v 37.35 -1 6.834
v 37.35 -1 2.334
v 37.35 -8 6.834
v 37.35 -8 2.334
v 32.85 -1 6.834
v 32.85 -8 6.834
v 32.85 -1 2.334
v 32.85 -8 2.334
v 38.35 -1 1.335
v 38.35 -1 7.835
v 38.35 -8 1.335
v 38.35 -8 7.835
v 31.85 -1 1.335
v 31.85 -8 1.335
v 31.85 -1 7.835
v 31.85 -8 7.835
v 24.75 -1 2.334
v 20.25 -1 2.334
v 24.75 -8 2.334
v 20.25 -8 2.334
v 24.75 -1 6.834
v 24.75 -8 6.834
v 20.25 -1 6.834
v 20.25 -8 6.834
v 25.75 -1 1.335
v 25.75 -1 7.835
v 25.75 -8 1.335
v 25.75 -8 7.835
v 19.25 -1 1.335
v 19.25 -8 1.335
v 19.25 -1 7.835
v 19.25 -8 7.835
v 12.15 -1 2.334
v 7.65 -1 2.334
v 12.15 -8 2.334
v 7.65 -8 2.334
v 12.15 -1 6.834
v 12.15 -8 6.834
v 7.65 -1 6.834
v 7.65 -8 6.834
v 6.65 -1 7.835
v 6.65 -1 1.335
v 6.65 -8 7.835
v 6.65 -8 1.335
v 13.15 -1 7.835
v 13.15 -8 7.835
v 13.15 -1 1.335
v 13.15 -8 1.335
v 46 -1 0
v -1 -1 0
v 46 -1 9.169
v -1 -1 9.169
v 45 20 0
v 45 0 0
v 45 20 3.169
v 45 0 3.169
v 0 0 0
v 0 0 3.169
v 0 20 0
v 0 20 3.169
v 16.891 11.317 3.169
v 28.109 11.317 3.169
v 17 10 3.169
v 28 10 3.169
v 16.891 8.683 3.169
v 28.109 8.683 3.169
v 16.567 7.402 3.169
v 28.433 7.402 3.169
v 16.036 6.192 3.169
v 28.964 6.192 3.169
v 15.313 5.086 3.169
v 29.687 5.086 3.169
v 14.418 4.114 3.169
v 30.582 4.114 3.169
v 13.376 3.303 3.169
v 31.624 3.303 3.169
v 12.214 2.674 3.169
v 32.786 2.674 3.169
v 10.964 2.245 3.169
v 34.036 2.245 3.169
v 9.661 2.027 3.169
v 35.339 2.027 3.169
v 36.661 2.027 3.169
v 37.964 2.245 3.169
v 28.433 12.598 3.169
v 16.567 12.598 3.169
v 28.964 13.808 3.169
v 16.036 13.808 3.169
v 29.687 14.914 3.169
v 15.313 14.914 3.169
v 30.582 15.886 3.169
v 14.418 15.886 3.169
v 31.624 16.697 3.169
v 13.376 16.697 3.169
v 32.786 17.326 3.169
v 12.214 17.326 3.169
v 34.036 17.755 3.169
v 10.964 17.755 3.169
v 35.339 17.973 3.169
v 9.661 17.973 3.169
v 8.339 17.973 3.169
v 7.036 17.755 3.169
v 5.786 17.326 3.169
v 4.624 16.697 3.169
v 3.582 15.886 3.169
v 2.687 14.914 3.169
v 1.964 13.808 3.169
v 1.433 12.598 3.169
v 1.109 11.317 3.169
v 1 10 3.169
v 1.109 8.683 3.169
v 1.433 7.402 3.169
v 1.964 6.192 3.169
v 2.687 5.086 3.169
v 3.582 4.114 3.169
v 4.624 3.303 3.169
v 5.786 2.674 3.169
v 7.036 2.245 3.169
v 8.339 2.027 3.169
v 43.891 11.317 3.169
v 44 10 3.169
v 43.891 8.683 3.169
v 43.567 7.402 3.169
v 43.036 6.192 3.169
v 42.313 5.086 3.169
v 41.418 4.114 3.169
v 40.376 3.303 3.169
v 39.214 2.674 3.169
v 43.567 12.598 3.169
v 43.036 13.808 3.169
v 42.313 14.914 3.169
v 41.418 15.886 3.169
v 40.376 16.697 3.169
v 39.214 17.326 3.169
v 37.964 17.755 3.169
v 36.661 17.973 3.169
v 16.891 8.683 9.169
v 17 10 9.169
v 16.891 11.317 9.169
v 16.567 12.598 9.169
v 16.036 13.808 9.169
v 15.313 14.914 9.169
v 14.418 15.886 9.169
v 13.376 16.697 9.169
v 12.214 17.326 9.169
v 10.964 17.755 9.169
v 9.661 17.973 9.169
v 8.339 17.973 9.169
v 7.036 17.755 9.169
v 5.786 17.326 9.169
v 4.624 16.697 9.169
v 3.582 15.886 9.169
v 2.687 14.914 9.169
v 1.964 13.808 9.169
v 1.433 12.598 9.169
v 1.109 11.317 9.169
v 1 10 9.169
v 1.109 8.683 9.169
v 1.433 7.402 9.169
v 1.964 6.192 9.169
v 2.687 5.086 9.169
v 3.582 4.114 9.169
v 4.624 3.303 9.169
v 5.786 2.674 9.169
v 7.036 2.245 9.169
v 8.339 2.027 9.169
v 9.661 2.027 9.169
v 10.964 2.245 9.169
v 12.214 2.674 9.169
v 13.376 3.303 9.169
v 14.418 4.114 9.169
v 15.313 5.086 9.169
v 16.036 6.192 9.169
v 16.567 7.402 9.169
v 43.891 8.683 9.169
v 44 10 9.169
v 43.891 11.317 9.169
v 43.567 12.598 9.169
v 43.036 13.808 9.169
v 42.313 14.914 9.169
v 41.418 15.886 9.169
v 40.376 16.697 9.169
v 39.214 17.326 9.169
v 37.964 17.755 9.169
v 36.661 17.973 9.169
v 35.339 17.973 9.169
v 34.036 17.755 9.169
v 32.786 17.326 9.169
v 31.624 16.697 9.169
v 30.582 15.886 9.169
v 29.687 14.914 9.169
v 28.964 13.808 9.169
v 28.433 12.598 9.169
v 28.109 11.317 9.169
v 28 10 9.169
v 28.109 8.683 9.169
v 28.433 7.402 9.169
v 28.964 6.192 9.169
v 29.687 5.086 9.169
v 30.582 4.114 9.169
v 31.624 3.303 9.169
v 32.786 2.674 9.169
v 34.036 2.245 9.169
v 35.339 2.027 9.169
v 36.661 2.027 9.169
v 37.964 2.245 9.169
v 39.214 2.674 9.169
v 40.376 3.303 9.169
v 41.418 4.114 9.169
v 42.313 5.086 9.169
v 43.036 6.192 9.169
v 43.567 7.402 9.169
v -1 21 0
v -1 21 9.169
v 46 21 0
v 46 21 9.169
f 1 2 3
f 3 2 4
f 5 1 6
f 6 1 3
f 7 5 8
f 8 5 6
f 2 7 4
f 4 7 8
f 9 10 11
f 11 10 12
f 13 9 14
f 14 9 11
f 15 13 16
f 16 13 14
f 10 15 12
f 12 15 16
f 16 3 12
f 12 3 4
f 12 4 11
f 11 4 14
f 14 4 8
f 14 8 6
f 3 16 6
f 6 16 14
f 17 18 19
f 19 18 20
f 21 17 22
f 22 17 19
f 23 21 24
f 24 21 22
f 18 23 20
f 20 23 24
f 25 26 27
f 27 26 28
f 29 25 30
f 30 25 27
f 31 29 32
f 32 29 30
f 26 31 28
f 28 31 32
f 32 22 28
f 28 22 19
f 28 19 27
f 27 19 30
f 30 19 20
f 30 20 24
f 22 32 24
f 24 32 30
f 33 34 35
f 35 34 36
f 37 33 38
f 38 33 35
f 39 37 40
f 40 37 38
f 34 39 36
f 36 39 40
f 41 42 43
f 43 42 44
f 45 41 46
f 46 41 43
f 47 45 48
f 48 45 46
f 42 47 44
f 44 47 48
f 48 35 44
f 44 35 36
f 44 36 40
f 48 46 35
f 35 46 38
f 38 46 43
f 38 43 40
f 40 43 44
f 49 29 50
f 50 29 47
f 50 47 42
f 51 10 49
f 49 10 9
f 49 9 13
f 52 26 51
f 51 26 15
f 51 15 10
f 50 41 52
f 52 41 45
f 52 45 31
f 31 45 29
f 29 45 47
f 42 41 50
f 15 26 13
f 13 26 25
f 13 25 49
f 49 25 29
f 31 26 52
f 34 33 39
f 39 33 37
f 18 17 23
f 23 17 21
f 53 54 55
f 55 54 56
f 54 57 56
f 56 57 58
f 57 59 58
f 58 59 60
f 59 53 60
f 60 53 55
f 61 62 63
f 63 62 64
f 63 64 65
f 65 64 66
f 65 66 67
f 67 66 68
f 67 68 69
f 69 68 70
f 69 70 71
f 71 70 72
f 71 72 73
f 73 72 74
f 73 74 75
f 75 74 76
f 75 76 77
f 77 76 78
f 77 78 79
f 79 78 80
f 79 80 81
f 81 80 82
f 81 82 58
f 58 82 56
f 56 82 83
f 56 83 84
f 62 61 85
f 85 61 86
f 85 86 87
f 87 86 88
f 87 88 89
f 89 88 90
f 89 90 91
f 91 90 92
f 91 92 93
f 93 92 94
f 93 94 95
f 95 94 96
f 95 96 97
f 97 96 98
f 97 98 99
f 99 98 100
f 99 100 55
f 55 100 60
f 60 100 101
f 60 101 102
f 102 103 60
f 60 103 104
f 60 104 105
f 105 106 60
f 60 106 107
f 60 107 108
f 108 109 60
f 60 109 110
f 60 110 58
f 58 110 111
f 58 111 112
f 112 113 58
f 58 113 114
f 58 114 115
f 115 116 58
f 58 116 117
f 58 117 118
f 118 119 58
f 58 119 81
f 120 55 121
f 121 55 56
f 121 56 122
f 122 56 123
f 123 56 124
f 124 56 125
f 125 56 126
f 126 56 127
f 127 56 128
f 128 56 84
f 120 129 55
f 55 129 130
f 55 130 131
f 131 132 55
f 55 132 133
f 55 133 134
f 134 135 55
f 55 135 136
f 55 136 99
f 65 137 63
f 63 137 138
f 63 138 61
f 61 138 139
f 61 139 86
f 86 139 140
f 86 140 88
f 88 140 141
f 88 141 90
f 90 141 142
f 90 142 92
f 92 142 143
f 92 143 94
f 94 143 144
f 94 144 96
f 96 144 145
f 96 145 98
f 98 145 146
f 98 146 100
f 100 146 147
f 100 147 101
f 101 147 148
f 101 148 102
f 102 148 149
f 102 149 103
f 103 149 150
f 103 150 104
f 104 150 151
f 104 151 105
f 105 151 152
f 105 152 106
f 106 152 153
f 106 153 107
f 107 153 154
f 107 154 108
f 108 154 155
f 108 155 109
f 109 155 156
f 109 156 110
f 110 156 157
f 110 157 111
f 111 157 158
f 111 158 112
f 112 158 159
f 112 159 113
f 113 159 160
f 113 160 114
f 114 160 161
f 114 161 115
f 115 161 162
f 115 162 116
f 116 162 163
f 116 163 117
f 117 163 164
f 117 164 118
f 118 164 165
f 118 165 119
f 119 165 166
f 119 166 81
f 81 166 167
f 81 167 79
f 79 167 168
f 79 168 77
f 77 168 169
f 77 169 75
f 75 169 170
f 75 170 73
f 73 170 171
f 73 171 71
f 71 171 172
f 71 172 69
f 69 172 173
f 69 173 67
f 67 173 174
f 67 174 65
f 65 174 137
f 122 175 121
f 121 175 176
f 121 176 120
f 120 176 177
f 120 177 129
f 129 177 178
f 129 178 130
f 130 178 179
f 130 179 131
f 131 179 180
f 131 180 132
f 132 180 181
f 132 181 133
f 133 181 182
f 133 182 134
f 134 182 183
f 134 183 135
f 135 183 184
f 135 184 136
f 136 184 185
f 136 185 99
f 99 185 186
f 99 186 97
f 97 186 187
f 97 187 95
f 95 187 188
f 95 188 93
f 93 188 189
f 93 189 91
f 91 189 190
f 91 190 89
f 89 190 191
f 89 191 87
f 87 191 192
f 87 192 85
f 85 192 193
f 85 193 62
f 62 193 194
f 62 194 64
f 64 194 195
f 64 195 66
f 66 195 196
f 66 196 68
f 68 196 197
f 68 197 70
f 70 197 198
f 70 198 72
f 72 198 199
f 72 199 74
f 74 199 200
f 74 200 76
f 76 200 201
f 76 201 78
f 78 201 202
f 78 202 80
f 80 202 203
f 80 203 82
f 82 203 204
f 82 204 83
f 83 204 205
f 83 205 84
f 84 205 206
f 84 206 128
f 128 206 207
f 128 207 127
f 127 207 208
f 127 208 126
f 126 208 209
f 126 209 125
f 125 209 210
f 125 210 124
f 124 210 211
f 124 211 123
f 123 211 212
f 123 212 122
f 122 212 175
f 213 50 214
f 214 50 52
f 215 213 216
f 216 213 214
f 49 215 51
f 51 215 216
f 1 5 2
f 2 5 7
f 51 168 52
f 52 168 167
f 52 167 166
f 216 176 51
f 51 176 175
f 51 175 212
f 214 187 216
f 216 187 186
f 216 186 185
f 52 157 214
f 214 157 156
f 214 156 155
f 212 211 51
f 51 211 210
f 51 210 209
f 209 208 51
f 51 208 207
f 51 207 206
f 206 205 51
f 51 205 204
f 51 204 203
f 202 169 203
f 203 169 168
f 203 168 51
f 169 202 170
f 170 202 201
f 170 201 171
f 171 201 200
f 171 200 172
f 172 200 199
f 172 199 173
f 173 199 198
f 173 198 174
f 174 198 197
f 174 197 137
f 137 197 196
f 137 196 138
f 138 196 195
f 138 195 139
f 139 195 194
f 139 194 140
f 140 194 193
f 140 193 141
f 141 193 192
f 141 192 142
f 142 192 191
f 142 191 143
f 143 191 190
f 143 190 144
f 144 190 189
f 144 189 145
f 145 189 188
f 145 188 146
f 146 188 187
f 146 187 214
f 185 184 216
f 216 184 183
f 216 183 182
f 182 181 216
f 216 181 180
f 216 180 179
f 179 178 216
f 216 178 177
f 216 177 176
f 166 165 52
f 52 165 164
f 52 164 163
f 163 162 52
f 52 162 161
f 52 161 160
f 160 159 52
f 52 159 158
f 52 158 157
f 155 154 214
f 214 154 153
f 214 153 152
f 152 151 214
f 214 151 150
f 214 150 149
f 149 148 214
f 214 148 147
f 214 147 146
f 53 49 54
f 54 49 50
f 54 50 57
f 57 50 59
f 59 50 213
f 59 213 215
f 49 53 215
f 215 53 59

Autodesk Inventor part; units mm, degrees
ref_plane "YZ Plane" through (0, 0, 0) normal (1, 0, 0) x (0, 1, 0)
ref_plane "XZ Plane" through (0, 0, 0) normal (0, 1, 0) x (-1, 0, 0)
ref_plane "XY Plane" through (0, 0, 0) normal (0, 0, 1) x (1, 0, 0)
sketch "Sketch1" plane through (0, 0, 0) normal (0, 0, 1) x (1, 0, 0)
  line L0 (0, 0) -> (45, 0) construction
  line L1 (45, 0) -> (45, 20) construction
  line L2 (45, 20) -> (0, 20) construction
  line L3 (0, 20) -> (0, 0) construction
  line L4 (0, 0) -> (9, 0) construction
  line L5 (9, 0) -> (9, 10) construction
  line L6 (45, 0) -> (36, 0) construction
  line L7 (36, 0) -> (36, 10) construction
  circle A0 centre (36, 10) radius 8
  circle A1 centre (9, 10) radius 8
  line L8 (45, 0) -> (46, 0) construction
  line L9 (46, 0) -> (46, -1) construction
  line L10 (0, 20) -> (-1, 20) construction
  line L11 (-1, 20) -> (-1, 21) construction
  line L12 (-1, 21) -> (46, 21)
  line L13 (46, 21) -> (46, -1)
  line L14 (46, -1) -> (-1, -1)
  line L15 (-1, -1) -> (-1, 21)
  line L16 (45, 0) -> (0, 0)
  line L17 (0, 0) -> (0, 20)
  line L18 (0, 20) -> (45, 20)
  line L19 (45, 20) -> (45, 0)
  dimension "d2" = 45
  dimension "d3" = 20
  dimension "d4" = 9
  dimension "d5" = 10
  dimension "d6" = 9
  dimension "d7" = 10
  dimension "d8" = 16
  dimension "d9" = 16
  dimension "d10" = 1
  dimension "d11" = 1
  dimension "d12" = 1
  dimension "d13" = 1
extrude "Extrusion1" add sketch "Sketch1" along normal blind 9.169 contours L12 L13 L14 L15 | L16 L17 L18 L19
sketch "Sketch2" plane through (0, 0, 0) normal (0, 0, -1) x (-1, 0, 0)
  line L0 (0, 0) -> (-45, 0)
  line L1 (-45, 0) -> (-45, 20)
  line L2 (-45, 20) -> (0, 20)
  line L3 (0, 20) -> (0, 0)
  dimension "d14" = 45
  dimension "d15" = 20
extrude "Extrusion2" cut sketch "Sketch2" against normal blind 3.169
sketch "Sketch3" plane through (-1, -1, 0) normal (0, -1, 0) x (1, 0, 0)
  line L0 (47, 0) -> (47, 9.169) construction
  line L1 (47, 4.5845) -> (0, 4.5845) construction
  line L2 (0, 0) -> (0, 9.169) construction
  line L3 (47, 0) -> (0, 0) construction
  line L4 (23.5, 0) -> (23.5, 9.169) construction
  line L5 (0, 9.169) -> (47, 9.169) construction
  line L6 (23.5, 4.5845) -> (23.5, 2.3345) construction
  line L7 (23.5, 2.3345) -> (21.25, 2.3345) construction
  line L8 (21.25, 2.3345) -> (13.15, 2.3345) construction
  line L9 (13.15, 2.3345) -> (8.65, 2.3345) construction
  line L10 (8.65, 2.3345) -> (0.55, 2.3345) construction
  line L11 (0.55, 2.3345) -> (-3.95, 2.3345) construction
  line L12 (-3.95, 2.3345) -> (-12.05, 2.3345) construction
  line L13 (23.5, 2.3345) -> (25.75, 2.3345) construction
  line L14 (25.75, 2.3345) -> (33.85, 2.3345) construction
  line L15 (33.85, 2.3345) -> (38.35, 2.3345) construction
  line L16 (38.35, 2.3345) -> (46.45, 2.3345) construction
  line L17 (46.45, 2.3345) -> (50.95, 2.3345) construction
  line L18 (50.95, 2.3345) -> (59.05, 2.3345) construction
  line L19 (21.25, 2.3345) -> (25.75, 2.3345)
  line L20 (25.75, 2.3345) -> (25.75, 6.8345)
  line L21 (25.75, 6.8345) -> (21.25, 6.8345)
  line L22 (21.25, 6.8345) -> (21.25, 2.3345)
  line L23 (8.65, 2.3345) -> (13.15, 2.3345)
  line L24 (13.15, 2.3345) -> (13.15, 6.8345)
  line L25 (13.15, 6.8345) -> (8.65, 6.8345)
  line L26 (8.65, 6.8345) -> (8.65, 2.3345)
  line L27 (38.35, 2.3345) -> (33.85, 2.3345)
  line L28 (33.85, 2.3345) -> (33.85, 6.8345)
  line L29 (33.85, 6.8345) -> (38.35, 6.8345)
  line L30 (38.35, 6.8345) -> (38.35, 2.3345)
  line L31 (13.15, 2.3345) -> (14.15, 2.3345) construction
  line L32 (14.15, 2.3345) -> (14.15, 1.3345) construction
  line L33 (8.65, 6.8345) -> (8.65, 7.8345) construction
  line L34 (8.65, 7.8345) -> (7.65, 7.8345) construction
  line L35 (7.65, 7.8345) -> (14.15, 7.8345)
  line L36 (14.15, 7.8345) -> (14.15, 1.3345)
  line L37 (14.15, 1.3345) -> (7.65, 1.3345)
  line L38 (7.65, 1.3345) -> (7.65, 7.8345)
  line L39 (25.75, 2.3345) -> (26.75, 2.3345) construction
  line L40 (26.75, 2.3345) -> (26.75, 1.3345) construction
  line L41 (21.25, 6.8345) -> (21.25, 7.8345) construction
  line L42 (21.25, 7.8345) -> (20.25, 7.8345) construction
  line L43 (33.85, 6.8345) -> (32.85, 6.8345) construction
  line L44 (32.85, 6.8345) -> (32.85, 7.8345) construction
  line L45 (38.35, 2.3345) -> (39.35, 2.3345) construction
  line L46 (39.35, 2.3345) -> (39.35, 1.3345) construction
  line L47 (26.75, 1.3345) -> (20.25, 1.3345)
  line L48 (20.25, 1.3345) -> (20.25, 7.8345)
  line L49 (20.25, 7.8345) -> (26.75, 7.8345)
  line L50 (26.75, 7.8345) -> (26.75, 1.3345)
  line L51 (39.35, 1.3345) -> (32.85, 1.3345)
  line L52 (32.85, 1.3345) -> (32.85, 7.8345)
  line L53 (32.85, 7.8345) -> (39.35, 7.8345)
  line L54 (39.35, 7.8345) -> (39.35, 1.3345)
  point P0 (1, 0)
  dimension "d18" = 2.25
  dimension "d19" = 2.25
  dimension "d20" = 8.1
  dimension "d21" = 4.5
  dimension "d22" = 8.1
  dimension "d23" = 4.5
  dimension "d24" = 8.1
  dimension "d25" = 2.25
  dimension "d26" = 8.1
  dimension "d27" = 4.5
  dimension "d28" = 8.1
  dimension "d29" = 4.5
  dimension "d30" = 8.1
  dimension "d31" = 4.5
  dimension "d32" = 4.5
  dimension "d33" = 4.5
  dimension "d34" = 4.5
  dimension "d35" = 4.5
  dimension "d36" = 4.5
  dimension "d37" = 1
  dimension "d38" = 1
  dimension "d39" = 1
  dimension "d40" = 1
  dimension "d41" = 1
  dimension "d42" = 1
  dimension "d43" = 1
  dimension "d44" = 1
  dimension "d45" = 1
  dimension "d46" = 1
  dimension "d47" = 1
  dimension "d48" = 1
extrude "Extrusion3" add sketch "Sketch3" along normal blind 7
equation "\"d2\" = wsonar"
equation "\"d3\" = hsonar"
equation "\"d10\" = thickness"
equation "\"d11\" = thickness"
equation "\"d12\" = thickness"
equation "\"d13\" = thickness"
equation "\"d14\" = wsonar"
equation "\"d15\" = hsonar"
equation "\"d18\" = 0.5 * box"
equation "\"d19\" = 0.5 * box"
equation "\"d20\" = gap"
equation "\"d21\" = box"
equation "\"d22\" = gap"
equation "\"d23\" = box"
equation "\"d24\" = gap"
equation "\"d25\" = 0.5 * box"
equation "\"d26\" = gap"
equation "\"d27\" = box"
equation "\"d28\" = gap"
equation "\"d29\" = box"
equation "\"d30\" = gap"
equation "\"d31\" = box"
equation "\"d32\" = box"
equation "\"d33\" = box"
equation "\"d34\" = box"
equation "\"d35\" = box"
equation "\"d36\" = box"
equation "\"d37\" = thickness"
equation "\"d38\" = thickness"
equation "\"d39\" = thickness"
equation "\"d40\" = thickness"
equation "\"d41\" = thickness"
equation "\"d42\" = thickness"
equation "\"d43\" = thickness"
equation "\"d44\" = thickness"
equation "\"d45\" = thickness"
equation "\"d46\" = thickness"
equation "\"d47\" = thickness"
equation "\"d48\" = thickness"
equation "\"wsonar\" = 45"
equation "\"hsonar\" = 20"
equation "\"thickness\" = 1"
equation "\"gap\" = 8.1"
equation "\"box\" = 4.5"
properties part number "Sonar"
